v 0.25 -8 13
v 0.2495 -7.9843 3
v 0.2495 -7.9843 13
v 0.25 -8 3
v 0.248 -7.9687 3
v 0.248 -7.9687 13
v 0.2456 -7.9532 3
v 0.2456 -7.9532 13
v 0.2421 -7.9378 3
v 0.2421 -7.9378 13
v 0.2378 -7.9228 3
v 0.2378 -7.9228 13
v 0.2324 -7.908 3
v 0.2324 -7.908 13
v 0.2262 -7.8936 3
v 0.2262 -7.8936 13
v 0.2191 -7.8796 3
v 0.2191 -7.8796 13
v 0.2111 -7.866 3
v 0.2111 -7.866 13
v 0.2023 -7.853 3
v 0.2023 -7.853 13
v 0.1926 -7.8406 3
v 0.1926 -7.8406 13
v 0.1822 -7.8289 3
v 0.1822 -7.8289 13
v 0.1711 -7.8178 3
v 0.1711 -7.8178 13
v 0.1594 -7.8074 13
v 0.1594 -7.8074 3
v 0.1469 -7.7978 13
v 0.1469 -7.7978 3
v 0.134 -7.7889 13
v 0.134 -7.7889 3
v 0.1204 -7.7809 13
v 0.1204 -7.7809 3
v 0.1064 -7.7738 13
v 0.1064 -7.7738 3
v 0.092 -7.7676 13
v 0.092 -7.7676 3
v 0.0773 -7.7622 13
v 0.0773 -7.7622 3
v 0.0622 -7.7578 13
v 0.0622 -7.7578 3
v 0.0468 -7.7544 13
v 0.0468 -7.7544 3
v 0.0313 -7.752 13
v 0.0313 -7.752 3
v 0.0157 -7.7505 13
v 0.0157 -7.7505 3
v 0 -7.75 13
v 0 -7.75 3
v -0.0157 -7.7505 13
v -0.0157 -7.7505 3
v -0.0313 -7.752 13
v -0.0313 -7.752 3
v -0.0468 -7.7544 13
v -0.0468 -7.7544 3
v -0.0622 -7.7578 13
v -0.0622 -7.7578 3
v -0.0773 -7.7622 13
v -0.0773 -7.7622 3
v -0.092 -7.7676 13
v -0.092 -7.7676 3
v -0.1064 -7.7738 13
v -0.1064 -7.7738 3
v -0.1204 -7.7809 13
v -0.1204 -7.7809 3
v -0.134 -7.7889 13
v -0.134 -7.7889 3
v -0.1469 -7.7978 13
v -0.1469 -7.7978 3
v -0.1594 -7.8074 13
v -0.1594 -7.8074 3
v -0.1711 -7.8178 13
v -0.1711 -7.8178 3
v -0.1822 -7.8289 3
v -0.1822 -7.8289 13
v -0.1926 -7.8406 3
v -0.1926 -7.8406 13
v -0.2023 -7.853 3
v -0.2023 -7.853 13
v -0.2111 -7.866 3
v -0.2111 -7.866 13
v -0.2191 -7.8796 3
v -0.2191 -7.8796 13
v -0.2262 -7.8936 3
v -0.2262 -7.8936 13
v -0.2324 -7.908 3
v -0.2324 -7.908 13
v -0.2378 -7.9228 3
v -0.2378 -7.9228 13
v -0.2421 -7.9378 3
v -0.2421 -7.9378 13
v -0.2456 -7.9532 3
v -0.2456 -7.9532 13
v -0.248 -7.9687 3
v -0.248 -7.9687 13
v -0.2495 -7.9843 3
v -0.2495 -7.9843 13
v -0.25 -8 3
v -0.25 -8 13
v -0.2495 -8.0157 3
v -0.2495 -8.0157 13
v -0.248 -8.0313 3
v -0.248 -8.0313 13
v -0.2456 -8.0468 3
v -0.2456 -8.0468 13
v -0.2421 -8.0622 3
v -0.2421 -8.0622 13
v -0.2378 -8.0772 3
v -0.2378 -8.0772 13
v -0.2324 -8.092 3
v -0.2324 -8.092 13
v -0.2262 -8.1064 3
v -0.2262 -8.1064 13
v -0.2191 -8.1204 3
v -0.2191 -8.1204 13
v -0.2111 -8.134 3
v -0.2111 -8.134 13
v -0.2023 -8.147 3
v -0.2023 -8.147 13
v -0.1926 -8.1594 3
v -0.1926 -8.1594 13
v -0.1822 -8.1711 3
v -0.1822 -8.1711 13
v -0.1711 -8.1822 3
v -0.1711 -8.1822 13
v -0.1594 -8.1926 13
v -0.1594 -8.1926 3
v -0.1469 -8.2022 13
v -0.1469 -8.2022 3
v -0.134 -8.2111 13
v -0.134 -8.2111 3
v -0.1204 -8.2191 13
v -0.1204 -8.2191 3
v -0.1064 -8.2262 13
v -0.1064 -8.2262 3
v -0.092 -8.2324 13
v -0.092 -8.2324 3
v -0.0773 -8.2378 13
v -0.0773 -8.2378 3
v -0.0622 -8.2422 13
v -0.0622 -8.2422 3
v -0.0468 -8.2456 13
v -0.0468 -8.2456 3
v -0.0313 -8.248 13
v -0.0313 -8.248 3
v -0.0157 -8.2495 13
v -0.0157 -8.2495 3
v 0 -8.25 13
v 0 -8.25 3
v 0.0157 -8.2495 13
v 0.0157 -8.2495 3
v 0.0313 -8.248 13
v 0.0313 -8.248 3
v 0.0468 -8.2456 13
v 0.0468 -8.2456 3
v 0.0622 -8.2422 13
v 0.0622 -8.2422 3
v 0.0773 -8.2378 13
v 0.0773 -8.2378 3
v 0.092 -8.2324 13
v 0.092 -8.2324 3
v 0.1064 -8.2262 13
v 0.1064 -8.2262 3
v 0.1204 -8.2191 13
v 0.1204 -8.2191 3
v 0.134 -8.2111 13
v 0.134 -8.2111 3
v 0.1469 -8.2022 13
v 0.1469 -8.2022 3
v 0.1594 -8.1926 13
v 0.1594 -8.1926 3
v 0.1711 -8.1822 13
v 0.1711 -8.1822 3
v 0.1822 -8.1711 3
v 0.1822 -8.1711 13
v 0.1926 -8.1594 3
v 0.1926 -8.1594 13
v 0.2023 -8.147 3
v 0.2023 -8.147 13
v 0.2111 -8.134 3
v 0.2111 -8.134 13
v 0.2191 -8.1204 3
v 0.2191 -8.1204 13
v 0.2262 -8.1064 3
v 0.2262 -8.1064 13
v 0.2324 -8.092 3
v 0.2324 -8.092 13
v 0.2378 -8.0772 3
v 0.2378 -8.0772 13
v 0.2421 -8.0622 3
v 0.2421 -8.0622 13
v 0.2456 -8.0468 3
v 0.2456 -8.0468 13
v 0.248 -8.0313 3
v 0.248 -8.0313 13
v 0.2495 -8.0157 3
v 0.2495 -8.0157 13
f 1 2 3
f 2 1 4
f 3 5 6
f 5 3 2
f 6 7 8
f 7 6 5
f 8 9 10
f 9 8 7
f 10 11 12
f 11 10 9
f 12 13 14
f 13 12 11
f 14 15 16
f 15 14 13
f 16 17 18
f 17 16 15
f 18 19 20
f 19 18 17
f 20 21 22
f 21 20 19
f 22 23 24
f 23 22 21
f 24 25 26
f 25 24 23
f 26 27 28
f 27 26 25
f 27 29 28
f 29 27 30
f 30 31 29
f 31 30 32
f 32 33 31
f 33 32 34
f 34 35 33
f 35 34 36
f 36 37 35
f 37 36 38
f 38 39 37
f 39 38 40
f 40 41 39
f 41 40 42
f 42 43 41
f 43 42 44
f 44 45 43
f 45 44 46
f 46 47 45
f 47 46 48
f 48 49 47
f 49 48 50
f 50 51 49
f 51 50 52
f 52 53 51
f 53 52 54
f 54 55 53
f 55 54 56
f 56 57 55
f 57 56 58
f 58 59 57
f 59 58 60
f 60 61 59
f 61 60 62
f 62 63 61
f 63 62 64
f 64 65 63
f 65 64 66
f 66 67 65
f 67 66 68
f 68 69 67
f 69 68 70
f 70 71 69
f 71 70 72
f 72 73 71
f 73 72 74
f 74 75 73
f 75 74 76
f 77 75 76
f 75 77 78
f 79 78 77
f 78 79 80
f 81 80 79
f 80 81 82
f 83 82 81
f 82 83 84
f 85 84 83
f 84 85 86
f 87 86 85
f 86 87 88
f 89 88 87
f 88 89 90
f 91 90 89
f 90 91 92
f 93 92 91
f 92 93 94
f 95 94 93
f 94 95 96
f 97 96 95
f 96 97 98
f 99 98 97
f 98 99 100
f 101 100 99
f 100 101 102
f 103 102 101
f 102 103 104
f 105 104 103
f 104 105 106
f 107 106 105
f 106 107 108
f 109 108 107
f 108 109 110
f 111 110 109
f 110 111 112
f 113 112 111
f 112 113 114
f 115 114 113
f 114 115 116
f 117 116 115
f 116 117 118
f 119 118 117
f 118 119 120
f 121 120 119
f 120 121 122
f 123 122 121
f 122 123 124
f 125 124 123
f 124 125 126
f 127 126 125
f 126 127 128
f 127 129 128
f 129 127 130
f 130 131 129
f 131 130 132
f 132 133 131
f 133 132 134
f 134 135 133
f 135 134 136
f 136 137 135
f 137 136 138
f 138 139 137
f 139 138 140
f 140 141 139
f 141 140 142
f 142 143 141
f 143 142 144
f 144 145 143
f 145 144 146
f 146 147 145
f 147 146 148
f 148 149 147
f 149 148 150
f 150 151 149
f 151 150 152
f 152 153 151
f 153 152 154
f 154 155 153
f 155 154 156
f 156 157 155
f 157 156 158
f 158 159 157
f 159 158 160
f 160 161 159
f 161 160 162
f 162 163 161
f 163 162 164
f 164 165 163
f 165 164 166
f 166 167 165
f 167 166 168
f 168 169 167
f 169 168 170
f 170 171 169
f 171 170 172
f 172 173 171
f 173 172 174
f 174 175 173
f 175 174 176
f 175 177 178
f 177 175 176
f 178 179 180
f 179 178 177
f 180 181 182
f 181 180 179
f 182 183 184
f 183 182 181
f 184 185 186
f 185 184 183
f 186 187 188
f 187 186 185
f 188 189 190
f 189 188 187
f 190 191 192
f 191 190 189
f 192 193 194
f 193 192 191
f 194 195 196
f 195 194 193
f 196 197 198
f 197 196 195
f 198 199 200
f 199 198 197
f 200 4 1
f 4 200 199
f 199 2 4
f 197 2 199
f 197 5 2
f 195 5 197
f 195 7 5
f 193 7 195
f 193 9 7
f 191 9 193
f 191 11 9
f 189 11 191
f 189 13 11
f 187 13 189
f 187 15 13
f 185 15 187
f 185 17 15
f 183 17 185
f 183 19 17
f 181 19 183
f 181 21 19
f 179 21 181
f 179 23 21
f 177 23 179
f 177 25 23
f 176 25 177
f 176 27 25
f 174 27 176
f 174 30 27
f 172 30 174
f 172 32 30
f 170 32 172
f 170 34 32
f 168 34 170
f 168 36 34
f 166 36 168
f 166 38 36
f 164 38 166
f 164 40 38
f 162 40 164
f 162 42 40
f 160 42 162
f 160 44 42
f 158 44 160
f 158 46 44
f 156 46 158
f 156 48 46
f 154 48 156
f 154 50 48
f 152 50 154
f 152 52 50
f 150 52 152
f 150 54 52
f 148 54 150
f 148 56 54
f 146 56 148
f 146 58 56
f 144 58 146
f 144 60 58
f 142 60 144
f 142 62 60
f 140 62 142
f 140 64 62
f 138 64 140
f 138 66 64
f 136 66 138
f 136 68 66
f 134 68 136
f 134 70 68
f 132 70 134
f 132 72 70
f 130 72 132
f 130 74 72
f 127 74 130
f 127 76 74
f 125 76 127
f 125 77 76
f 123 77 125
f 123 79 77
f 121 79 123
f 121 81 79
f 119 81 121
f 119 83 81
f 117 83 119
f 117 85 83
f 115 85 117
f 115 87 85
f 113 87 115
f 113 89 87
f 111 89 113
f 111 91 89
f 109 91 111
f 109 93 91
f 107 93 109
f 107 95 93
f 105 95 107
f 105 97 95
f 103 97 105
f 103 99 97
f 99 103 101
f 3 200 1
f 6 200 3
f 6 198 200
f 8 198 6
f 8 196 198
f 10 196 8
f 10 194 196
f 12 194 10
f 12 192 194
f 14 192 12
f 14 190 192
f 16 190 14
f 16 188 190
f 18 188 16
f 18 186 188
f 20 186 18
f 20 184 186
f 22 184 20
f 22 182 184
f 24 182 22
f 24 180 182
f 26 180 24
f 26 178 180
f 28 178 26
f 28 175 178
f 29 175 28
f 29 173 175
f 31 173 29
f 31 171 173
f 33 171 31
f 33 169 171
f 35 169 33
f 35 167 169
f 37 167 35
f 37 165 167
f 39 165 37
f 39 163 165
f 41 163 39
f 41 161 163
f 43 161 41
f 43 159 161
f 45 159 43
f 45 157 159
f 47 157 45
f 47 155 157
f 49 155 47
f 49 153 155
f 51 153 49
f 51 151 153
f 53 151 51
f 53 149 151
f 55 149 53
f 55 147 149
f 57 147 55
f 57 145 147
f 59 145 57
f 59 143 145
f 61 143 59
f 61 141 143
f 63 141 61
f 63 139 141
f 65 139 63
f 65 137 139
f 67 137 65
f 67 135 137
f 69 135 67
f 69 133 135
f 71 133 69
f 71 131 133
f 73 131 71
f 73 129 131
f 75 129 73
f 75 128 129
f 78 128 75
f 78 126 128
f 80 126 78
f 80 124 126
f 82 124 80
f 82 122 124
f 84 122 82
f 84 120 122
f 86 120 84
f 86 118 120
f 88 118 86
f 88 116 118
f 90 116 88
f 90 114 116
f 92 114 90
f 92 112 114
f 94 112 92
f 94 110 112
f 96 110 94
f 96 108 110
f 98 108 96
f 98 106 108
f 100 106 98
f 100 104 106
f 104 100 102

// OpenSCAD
translate ([0, -8, 3]) {
    cylinder (r=0.25, h=10, $fn=100);
}
